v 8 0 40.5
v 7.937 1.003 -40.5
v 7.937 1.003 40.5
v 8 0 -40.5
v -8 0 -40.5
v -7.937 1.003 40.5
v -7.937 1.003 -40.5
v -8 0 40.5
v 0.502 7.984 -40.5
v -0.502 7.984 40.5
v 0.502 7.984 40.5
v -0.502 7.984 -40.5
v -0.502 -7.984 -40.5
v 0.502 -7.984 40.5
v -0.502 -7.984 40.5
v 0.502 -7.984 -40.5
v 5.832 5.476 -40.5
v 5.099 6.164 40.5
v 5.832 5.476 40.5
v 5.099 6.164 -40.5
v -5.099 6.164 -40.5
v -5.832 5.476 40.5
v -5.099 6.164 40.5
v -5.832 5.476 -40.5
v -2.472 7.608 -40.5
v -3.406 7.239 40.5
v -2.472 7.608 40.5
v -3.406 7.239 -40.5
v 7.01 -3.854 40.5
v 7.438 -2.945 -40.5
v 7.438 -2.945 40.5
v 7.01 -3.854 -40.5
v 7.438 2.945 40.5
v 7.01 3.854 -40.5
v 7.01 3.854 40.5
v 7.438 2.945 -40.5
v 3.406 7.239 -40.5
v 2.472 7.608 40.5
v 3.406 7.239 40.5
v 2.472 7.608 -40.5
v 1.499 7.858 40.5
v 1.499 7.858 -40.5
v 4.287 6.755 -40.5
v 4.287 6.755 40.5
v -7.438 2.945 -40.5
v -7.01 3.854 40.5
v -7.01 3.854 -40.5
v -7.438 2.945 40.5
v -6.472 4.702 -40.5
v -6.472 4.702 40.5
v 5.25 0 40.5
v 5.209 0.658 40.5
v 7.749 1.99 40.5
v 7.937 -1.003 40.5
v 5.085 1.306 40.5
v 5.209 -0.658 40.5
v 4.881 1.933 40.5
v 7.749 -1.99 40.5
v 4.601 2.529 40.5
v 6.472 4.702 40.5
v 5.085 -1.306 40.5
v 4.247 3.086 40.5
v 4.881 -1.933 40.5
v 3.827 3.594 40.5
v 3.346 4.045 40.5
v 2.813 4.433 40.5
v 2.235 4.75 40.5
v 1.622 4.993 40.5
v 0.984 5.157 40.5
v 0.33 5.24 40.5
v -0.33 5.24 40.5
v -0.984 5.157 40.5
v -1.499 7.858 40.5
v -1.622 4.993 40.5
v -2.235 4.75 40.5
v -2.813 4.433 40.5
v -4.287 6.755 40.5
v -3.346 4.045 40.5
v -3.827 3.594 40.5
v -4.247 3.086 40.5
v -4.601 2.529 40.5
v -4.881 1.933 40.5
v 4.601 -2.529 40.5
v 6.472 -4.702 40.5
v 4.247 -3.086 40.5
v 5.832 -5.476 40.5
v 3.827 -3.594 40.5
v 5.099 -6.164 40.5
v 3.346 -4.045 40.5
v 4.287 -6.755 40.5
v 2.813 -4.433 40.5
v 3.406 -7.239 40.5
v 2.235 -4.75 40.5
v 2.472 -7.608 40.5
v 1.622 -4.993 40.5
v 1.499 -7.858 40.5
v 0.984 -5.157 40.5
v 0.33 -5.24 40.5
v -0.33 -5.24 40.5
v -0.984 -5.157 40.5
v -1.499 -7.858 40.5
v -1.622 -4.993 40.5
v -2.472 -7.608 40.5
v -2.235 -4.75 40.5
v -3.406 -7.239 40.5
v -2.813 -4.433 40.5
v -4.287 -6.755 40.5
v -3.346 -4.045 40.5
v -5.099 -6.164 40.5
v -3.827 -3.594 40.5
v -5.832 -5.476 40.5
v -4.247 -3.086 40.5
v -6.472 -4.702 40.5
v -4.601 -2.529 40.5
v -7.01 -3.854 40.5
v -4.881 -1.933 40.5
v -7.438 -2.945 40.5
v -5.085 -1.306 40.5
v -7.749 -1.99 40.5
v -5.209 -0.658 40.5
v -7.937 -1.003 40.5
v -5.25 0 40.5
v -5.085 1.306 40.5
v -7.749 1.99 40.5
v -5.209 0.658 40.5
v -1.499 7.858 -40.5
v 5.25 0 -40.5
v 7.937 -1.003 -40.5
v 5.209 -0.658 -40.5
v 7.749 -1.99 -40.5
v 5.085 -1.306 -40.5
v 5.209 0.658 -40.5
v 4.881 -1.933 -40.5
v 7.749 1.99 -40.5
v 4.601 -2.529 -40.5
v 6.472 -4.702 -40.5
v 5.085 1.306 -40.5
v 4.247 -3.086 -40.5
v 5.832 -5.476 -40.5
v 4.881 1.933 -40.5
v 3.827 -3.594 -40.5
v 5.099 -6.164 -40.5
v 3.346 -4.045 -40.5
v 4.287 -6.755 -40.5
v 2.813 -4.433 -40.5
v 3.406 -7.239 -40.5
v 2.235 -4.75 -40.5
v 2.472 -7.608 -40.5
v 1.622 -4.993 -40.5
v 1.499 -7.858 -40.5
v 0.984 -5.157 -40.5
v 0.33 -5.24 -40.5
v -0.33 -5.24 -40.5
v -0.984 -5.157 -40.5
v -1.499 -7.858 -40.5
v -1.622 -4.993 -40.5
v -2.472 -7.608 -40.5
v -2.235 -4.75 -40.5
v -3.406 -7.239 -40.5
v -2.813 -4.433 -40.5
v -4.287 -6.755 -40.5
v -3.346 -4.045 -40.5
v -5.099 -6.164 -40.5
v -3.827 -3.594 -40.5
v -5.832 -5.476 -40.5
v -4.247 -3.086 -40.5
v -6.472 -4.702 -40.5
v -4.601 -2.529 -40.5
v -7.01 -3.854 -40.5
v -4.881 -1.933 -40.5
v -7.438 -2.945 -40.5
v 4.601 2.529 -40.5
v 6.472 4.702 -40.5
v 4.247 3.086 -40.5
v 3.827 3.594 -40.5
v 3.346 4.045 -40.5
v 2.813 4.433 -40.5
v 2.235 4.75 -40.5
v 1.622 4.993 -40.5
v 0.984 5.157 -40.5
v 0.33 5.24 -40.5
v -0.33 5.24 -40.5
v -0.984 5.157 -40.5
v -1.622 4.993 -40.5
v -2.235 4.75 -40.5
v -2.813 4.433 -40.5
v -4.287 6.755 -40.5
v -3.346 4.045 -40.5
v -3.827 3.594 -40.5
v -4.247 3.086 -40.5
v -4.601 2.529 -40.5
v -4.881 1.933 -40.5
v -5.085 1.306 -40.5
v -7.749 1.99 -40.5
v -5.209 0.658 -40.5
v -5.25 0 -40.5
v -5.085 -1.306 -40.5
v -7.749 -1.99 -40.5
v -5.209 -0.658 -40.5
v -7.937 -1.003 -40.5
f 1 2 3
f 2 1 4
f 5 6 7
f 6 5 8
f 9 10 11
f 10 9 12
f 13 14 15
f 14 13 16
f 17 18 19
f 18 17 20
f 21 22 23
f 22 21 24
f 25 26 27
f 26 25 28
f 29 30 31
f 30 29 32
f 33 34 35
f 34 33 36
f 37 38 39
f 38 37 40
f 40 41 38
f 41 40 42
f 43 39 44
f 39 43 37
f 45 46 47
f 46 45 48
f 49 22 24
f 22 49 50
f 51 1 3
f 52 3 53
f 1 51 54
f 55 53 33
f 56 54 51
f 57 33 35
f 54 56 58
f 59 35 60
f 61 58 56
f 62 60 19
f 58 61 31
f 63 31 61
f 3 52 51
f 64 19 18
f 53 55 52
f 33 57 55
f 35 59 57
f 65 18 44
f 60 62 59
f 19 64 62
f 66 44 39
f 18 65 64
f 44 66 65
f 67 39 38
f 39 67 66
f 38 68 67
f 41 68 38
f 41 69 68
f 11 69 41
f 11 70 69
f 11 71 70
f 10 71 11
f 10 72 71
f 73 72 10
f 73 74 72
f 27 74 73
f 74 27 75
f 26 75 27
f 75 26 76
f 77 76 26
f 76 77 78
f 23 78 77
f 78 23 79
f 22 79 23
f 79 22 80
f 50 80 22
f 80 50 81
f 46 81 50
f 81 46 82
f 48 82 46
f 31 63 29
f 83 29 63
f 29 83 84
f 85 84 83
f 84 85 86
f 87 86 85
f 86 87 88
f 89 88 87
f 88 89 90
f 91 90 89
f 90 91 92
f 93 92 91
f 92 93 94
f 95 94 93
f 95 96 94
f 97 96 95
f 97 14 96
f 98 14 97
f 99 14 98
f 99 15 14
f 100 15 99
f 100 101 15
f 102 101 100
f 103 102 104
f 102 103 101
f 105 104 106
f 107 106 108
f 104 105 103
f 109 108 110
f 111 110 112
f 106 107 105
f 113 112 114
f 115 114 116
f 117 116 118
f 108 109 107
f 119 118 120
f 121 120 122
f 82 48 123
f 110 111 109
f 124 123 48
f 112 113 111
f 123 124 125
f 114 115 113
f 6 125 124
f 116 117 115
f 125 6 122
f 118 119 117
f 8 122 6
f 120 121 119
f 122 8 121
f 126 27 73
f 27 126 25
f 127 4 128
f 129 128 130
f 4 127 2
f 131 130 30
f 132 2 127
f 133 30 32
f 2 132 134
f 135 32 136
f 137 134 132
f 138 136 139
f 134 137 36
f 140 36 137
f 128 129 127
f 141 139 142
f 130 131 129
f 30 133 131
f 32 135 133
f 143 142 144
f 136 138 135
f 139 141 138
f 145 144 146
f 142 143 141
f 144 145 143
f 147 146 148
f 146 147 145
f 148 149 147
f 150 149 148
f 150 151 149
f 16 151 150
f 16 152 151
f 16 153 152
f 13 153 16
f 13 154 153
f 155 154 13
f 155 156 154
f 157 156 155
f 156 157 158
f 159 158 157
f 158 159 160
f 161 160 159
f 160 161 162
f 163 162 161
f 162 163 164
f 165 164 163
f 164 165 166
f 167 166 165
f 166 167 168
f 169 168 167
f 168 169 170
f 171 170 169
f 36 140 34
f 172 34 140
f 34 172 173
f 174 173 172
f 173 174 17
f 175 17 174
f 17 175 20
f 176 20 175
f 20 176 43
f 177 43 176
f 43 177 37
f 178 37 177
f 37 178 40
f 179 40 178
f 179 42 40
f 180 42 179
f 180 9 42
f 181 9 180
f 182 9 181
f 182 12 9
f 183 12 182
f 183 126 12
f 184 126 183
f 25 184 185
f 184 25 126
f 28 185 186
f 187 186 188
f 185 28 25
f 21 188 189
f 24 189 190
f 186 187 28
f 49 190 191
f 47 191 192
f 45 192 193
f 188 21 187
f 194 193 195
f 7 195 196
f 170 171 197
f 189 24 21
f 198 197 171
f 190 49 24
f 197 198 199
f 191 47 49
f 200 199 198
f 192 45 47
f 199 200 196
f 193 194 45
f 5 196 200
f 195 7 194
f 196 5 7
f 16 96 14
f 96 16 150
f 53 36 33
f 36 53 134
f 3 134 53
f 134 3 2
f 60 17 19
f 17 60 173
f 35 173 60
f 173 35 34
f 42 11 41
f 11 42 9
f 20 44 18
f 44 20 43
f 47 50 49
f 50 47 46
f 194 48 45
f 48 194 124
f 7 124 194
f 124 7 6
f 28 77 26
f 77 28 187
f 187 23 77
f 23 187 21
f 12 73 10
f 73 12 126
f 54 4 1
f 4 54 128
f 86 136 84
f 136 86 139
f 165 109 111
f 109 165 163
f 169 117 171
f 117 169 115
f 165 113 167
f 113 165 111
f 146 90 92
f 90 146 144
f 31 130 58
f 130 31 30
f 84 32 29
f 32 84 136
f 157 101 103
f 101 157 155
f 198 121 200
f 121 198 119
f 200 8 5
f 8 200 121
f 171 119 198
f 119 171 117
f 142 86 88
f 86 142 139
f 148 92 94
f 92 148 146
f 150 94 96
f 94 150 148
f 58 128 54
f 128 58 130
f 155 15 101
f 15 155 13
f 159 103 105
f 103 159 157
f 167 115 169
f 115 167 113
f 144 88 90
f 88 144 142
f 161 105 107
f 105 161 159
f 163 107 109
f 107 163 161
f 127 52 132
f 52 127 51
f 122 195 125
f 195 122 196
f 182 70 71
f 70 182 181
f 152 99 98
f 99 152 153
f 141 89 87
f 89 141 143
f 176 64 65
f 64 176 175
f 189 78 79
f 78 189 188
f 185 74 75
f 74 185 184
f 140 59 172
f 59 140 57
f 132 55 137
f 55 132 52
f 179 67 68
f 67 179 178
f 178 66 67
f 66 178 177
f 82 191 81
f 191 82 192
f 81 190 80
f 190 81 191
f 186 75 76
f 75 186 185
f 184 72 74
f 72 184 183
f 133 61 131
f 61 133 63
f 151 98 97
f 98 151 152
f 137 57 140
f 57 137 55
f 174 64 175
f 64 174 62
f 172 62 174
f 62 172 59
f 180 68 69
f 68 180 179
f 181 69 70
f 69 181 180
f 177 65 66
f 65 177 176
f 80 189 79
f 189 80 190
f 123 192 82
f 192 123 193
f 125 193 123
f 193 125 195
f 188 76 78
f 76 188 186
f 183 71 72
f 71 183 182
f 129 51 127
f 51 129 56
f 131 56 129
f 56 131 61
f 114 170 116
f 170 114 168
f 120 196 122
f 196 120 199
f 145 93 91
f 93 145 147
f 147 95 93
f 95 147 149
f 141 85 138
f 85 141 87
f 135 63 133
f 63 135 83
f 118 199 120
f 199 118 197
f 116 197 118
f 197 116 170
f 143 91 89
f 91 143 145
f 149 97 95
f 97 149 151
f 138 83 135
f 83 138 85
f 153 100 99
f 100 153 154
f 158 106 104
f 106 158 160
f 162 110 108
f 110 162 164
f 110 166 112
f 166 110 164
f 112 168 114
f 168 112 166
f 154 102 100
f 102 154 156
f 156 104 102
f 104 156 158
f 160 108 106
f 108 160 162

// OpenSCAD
$fn = 50;


difference() {
	union() {
		translate(v = [0, 0, -40.5000000000]) {
			cylinder(h = 81, r = 8.0000000000);
		}
	}
	union() {
		translate(v = [0, 0, -100.0000000000]) {
			cylinder(h = 200, r = 5.2500000000);
		}
	}
}
